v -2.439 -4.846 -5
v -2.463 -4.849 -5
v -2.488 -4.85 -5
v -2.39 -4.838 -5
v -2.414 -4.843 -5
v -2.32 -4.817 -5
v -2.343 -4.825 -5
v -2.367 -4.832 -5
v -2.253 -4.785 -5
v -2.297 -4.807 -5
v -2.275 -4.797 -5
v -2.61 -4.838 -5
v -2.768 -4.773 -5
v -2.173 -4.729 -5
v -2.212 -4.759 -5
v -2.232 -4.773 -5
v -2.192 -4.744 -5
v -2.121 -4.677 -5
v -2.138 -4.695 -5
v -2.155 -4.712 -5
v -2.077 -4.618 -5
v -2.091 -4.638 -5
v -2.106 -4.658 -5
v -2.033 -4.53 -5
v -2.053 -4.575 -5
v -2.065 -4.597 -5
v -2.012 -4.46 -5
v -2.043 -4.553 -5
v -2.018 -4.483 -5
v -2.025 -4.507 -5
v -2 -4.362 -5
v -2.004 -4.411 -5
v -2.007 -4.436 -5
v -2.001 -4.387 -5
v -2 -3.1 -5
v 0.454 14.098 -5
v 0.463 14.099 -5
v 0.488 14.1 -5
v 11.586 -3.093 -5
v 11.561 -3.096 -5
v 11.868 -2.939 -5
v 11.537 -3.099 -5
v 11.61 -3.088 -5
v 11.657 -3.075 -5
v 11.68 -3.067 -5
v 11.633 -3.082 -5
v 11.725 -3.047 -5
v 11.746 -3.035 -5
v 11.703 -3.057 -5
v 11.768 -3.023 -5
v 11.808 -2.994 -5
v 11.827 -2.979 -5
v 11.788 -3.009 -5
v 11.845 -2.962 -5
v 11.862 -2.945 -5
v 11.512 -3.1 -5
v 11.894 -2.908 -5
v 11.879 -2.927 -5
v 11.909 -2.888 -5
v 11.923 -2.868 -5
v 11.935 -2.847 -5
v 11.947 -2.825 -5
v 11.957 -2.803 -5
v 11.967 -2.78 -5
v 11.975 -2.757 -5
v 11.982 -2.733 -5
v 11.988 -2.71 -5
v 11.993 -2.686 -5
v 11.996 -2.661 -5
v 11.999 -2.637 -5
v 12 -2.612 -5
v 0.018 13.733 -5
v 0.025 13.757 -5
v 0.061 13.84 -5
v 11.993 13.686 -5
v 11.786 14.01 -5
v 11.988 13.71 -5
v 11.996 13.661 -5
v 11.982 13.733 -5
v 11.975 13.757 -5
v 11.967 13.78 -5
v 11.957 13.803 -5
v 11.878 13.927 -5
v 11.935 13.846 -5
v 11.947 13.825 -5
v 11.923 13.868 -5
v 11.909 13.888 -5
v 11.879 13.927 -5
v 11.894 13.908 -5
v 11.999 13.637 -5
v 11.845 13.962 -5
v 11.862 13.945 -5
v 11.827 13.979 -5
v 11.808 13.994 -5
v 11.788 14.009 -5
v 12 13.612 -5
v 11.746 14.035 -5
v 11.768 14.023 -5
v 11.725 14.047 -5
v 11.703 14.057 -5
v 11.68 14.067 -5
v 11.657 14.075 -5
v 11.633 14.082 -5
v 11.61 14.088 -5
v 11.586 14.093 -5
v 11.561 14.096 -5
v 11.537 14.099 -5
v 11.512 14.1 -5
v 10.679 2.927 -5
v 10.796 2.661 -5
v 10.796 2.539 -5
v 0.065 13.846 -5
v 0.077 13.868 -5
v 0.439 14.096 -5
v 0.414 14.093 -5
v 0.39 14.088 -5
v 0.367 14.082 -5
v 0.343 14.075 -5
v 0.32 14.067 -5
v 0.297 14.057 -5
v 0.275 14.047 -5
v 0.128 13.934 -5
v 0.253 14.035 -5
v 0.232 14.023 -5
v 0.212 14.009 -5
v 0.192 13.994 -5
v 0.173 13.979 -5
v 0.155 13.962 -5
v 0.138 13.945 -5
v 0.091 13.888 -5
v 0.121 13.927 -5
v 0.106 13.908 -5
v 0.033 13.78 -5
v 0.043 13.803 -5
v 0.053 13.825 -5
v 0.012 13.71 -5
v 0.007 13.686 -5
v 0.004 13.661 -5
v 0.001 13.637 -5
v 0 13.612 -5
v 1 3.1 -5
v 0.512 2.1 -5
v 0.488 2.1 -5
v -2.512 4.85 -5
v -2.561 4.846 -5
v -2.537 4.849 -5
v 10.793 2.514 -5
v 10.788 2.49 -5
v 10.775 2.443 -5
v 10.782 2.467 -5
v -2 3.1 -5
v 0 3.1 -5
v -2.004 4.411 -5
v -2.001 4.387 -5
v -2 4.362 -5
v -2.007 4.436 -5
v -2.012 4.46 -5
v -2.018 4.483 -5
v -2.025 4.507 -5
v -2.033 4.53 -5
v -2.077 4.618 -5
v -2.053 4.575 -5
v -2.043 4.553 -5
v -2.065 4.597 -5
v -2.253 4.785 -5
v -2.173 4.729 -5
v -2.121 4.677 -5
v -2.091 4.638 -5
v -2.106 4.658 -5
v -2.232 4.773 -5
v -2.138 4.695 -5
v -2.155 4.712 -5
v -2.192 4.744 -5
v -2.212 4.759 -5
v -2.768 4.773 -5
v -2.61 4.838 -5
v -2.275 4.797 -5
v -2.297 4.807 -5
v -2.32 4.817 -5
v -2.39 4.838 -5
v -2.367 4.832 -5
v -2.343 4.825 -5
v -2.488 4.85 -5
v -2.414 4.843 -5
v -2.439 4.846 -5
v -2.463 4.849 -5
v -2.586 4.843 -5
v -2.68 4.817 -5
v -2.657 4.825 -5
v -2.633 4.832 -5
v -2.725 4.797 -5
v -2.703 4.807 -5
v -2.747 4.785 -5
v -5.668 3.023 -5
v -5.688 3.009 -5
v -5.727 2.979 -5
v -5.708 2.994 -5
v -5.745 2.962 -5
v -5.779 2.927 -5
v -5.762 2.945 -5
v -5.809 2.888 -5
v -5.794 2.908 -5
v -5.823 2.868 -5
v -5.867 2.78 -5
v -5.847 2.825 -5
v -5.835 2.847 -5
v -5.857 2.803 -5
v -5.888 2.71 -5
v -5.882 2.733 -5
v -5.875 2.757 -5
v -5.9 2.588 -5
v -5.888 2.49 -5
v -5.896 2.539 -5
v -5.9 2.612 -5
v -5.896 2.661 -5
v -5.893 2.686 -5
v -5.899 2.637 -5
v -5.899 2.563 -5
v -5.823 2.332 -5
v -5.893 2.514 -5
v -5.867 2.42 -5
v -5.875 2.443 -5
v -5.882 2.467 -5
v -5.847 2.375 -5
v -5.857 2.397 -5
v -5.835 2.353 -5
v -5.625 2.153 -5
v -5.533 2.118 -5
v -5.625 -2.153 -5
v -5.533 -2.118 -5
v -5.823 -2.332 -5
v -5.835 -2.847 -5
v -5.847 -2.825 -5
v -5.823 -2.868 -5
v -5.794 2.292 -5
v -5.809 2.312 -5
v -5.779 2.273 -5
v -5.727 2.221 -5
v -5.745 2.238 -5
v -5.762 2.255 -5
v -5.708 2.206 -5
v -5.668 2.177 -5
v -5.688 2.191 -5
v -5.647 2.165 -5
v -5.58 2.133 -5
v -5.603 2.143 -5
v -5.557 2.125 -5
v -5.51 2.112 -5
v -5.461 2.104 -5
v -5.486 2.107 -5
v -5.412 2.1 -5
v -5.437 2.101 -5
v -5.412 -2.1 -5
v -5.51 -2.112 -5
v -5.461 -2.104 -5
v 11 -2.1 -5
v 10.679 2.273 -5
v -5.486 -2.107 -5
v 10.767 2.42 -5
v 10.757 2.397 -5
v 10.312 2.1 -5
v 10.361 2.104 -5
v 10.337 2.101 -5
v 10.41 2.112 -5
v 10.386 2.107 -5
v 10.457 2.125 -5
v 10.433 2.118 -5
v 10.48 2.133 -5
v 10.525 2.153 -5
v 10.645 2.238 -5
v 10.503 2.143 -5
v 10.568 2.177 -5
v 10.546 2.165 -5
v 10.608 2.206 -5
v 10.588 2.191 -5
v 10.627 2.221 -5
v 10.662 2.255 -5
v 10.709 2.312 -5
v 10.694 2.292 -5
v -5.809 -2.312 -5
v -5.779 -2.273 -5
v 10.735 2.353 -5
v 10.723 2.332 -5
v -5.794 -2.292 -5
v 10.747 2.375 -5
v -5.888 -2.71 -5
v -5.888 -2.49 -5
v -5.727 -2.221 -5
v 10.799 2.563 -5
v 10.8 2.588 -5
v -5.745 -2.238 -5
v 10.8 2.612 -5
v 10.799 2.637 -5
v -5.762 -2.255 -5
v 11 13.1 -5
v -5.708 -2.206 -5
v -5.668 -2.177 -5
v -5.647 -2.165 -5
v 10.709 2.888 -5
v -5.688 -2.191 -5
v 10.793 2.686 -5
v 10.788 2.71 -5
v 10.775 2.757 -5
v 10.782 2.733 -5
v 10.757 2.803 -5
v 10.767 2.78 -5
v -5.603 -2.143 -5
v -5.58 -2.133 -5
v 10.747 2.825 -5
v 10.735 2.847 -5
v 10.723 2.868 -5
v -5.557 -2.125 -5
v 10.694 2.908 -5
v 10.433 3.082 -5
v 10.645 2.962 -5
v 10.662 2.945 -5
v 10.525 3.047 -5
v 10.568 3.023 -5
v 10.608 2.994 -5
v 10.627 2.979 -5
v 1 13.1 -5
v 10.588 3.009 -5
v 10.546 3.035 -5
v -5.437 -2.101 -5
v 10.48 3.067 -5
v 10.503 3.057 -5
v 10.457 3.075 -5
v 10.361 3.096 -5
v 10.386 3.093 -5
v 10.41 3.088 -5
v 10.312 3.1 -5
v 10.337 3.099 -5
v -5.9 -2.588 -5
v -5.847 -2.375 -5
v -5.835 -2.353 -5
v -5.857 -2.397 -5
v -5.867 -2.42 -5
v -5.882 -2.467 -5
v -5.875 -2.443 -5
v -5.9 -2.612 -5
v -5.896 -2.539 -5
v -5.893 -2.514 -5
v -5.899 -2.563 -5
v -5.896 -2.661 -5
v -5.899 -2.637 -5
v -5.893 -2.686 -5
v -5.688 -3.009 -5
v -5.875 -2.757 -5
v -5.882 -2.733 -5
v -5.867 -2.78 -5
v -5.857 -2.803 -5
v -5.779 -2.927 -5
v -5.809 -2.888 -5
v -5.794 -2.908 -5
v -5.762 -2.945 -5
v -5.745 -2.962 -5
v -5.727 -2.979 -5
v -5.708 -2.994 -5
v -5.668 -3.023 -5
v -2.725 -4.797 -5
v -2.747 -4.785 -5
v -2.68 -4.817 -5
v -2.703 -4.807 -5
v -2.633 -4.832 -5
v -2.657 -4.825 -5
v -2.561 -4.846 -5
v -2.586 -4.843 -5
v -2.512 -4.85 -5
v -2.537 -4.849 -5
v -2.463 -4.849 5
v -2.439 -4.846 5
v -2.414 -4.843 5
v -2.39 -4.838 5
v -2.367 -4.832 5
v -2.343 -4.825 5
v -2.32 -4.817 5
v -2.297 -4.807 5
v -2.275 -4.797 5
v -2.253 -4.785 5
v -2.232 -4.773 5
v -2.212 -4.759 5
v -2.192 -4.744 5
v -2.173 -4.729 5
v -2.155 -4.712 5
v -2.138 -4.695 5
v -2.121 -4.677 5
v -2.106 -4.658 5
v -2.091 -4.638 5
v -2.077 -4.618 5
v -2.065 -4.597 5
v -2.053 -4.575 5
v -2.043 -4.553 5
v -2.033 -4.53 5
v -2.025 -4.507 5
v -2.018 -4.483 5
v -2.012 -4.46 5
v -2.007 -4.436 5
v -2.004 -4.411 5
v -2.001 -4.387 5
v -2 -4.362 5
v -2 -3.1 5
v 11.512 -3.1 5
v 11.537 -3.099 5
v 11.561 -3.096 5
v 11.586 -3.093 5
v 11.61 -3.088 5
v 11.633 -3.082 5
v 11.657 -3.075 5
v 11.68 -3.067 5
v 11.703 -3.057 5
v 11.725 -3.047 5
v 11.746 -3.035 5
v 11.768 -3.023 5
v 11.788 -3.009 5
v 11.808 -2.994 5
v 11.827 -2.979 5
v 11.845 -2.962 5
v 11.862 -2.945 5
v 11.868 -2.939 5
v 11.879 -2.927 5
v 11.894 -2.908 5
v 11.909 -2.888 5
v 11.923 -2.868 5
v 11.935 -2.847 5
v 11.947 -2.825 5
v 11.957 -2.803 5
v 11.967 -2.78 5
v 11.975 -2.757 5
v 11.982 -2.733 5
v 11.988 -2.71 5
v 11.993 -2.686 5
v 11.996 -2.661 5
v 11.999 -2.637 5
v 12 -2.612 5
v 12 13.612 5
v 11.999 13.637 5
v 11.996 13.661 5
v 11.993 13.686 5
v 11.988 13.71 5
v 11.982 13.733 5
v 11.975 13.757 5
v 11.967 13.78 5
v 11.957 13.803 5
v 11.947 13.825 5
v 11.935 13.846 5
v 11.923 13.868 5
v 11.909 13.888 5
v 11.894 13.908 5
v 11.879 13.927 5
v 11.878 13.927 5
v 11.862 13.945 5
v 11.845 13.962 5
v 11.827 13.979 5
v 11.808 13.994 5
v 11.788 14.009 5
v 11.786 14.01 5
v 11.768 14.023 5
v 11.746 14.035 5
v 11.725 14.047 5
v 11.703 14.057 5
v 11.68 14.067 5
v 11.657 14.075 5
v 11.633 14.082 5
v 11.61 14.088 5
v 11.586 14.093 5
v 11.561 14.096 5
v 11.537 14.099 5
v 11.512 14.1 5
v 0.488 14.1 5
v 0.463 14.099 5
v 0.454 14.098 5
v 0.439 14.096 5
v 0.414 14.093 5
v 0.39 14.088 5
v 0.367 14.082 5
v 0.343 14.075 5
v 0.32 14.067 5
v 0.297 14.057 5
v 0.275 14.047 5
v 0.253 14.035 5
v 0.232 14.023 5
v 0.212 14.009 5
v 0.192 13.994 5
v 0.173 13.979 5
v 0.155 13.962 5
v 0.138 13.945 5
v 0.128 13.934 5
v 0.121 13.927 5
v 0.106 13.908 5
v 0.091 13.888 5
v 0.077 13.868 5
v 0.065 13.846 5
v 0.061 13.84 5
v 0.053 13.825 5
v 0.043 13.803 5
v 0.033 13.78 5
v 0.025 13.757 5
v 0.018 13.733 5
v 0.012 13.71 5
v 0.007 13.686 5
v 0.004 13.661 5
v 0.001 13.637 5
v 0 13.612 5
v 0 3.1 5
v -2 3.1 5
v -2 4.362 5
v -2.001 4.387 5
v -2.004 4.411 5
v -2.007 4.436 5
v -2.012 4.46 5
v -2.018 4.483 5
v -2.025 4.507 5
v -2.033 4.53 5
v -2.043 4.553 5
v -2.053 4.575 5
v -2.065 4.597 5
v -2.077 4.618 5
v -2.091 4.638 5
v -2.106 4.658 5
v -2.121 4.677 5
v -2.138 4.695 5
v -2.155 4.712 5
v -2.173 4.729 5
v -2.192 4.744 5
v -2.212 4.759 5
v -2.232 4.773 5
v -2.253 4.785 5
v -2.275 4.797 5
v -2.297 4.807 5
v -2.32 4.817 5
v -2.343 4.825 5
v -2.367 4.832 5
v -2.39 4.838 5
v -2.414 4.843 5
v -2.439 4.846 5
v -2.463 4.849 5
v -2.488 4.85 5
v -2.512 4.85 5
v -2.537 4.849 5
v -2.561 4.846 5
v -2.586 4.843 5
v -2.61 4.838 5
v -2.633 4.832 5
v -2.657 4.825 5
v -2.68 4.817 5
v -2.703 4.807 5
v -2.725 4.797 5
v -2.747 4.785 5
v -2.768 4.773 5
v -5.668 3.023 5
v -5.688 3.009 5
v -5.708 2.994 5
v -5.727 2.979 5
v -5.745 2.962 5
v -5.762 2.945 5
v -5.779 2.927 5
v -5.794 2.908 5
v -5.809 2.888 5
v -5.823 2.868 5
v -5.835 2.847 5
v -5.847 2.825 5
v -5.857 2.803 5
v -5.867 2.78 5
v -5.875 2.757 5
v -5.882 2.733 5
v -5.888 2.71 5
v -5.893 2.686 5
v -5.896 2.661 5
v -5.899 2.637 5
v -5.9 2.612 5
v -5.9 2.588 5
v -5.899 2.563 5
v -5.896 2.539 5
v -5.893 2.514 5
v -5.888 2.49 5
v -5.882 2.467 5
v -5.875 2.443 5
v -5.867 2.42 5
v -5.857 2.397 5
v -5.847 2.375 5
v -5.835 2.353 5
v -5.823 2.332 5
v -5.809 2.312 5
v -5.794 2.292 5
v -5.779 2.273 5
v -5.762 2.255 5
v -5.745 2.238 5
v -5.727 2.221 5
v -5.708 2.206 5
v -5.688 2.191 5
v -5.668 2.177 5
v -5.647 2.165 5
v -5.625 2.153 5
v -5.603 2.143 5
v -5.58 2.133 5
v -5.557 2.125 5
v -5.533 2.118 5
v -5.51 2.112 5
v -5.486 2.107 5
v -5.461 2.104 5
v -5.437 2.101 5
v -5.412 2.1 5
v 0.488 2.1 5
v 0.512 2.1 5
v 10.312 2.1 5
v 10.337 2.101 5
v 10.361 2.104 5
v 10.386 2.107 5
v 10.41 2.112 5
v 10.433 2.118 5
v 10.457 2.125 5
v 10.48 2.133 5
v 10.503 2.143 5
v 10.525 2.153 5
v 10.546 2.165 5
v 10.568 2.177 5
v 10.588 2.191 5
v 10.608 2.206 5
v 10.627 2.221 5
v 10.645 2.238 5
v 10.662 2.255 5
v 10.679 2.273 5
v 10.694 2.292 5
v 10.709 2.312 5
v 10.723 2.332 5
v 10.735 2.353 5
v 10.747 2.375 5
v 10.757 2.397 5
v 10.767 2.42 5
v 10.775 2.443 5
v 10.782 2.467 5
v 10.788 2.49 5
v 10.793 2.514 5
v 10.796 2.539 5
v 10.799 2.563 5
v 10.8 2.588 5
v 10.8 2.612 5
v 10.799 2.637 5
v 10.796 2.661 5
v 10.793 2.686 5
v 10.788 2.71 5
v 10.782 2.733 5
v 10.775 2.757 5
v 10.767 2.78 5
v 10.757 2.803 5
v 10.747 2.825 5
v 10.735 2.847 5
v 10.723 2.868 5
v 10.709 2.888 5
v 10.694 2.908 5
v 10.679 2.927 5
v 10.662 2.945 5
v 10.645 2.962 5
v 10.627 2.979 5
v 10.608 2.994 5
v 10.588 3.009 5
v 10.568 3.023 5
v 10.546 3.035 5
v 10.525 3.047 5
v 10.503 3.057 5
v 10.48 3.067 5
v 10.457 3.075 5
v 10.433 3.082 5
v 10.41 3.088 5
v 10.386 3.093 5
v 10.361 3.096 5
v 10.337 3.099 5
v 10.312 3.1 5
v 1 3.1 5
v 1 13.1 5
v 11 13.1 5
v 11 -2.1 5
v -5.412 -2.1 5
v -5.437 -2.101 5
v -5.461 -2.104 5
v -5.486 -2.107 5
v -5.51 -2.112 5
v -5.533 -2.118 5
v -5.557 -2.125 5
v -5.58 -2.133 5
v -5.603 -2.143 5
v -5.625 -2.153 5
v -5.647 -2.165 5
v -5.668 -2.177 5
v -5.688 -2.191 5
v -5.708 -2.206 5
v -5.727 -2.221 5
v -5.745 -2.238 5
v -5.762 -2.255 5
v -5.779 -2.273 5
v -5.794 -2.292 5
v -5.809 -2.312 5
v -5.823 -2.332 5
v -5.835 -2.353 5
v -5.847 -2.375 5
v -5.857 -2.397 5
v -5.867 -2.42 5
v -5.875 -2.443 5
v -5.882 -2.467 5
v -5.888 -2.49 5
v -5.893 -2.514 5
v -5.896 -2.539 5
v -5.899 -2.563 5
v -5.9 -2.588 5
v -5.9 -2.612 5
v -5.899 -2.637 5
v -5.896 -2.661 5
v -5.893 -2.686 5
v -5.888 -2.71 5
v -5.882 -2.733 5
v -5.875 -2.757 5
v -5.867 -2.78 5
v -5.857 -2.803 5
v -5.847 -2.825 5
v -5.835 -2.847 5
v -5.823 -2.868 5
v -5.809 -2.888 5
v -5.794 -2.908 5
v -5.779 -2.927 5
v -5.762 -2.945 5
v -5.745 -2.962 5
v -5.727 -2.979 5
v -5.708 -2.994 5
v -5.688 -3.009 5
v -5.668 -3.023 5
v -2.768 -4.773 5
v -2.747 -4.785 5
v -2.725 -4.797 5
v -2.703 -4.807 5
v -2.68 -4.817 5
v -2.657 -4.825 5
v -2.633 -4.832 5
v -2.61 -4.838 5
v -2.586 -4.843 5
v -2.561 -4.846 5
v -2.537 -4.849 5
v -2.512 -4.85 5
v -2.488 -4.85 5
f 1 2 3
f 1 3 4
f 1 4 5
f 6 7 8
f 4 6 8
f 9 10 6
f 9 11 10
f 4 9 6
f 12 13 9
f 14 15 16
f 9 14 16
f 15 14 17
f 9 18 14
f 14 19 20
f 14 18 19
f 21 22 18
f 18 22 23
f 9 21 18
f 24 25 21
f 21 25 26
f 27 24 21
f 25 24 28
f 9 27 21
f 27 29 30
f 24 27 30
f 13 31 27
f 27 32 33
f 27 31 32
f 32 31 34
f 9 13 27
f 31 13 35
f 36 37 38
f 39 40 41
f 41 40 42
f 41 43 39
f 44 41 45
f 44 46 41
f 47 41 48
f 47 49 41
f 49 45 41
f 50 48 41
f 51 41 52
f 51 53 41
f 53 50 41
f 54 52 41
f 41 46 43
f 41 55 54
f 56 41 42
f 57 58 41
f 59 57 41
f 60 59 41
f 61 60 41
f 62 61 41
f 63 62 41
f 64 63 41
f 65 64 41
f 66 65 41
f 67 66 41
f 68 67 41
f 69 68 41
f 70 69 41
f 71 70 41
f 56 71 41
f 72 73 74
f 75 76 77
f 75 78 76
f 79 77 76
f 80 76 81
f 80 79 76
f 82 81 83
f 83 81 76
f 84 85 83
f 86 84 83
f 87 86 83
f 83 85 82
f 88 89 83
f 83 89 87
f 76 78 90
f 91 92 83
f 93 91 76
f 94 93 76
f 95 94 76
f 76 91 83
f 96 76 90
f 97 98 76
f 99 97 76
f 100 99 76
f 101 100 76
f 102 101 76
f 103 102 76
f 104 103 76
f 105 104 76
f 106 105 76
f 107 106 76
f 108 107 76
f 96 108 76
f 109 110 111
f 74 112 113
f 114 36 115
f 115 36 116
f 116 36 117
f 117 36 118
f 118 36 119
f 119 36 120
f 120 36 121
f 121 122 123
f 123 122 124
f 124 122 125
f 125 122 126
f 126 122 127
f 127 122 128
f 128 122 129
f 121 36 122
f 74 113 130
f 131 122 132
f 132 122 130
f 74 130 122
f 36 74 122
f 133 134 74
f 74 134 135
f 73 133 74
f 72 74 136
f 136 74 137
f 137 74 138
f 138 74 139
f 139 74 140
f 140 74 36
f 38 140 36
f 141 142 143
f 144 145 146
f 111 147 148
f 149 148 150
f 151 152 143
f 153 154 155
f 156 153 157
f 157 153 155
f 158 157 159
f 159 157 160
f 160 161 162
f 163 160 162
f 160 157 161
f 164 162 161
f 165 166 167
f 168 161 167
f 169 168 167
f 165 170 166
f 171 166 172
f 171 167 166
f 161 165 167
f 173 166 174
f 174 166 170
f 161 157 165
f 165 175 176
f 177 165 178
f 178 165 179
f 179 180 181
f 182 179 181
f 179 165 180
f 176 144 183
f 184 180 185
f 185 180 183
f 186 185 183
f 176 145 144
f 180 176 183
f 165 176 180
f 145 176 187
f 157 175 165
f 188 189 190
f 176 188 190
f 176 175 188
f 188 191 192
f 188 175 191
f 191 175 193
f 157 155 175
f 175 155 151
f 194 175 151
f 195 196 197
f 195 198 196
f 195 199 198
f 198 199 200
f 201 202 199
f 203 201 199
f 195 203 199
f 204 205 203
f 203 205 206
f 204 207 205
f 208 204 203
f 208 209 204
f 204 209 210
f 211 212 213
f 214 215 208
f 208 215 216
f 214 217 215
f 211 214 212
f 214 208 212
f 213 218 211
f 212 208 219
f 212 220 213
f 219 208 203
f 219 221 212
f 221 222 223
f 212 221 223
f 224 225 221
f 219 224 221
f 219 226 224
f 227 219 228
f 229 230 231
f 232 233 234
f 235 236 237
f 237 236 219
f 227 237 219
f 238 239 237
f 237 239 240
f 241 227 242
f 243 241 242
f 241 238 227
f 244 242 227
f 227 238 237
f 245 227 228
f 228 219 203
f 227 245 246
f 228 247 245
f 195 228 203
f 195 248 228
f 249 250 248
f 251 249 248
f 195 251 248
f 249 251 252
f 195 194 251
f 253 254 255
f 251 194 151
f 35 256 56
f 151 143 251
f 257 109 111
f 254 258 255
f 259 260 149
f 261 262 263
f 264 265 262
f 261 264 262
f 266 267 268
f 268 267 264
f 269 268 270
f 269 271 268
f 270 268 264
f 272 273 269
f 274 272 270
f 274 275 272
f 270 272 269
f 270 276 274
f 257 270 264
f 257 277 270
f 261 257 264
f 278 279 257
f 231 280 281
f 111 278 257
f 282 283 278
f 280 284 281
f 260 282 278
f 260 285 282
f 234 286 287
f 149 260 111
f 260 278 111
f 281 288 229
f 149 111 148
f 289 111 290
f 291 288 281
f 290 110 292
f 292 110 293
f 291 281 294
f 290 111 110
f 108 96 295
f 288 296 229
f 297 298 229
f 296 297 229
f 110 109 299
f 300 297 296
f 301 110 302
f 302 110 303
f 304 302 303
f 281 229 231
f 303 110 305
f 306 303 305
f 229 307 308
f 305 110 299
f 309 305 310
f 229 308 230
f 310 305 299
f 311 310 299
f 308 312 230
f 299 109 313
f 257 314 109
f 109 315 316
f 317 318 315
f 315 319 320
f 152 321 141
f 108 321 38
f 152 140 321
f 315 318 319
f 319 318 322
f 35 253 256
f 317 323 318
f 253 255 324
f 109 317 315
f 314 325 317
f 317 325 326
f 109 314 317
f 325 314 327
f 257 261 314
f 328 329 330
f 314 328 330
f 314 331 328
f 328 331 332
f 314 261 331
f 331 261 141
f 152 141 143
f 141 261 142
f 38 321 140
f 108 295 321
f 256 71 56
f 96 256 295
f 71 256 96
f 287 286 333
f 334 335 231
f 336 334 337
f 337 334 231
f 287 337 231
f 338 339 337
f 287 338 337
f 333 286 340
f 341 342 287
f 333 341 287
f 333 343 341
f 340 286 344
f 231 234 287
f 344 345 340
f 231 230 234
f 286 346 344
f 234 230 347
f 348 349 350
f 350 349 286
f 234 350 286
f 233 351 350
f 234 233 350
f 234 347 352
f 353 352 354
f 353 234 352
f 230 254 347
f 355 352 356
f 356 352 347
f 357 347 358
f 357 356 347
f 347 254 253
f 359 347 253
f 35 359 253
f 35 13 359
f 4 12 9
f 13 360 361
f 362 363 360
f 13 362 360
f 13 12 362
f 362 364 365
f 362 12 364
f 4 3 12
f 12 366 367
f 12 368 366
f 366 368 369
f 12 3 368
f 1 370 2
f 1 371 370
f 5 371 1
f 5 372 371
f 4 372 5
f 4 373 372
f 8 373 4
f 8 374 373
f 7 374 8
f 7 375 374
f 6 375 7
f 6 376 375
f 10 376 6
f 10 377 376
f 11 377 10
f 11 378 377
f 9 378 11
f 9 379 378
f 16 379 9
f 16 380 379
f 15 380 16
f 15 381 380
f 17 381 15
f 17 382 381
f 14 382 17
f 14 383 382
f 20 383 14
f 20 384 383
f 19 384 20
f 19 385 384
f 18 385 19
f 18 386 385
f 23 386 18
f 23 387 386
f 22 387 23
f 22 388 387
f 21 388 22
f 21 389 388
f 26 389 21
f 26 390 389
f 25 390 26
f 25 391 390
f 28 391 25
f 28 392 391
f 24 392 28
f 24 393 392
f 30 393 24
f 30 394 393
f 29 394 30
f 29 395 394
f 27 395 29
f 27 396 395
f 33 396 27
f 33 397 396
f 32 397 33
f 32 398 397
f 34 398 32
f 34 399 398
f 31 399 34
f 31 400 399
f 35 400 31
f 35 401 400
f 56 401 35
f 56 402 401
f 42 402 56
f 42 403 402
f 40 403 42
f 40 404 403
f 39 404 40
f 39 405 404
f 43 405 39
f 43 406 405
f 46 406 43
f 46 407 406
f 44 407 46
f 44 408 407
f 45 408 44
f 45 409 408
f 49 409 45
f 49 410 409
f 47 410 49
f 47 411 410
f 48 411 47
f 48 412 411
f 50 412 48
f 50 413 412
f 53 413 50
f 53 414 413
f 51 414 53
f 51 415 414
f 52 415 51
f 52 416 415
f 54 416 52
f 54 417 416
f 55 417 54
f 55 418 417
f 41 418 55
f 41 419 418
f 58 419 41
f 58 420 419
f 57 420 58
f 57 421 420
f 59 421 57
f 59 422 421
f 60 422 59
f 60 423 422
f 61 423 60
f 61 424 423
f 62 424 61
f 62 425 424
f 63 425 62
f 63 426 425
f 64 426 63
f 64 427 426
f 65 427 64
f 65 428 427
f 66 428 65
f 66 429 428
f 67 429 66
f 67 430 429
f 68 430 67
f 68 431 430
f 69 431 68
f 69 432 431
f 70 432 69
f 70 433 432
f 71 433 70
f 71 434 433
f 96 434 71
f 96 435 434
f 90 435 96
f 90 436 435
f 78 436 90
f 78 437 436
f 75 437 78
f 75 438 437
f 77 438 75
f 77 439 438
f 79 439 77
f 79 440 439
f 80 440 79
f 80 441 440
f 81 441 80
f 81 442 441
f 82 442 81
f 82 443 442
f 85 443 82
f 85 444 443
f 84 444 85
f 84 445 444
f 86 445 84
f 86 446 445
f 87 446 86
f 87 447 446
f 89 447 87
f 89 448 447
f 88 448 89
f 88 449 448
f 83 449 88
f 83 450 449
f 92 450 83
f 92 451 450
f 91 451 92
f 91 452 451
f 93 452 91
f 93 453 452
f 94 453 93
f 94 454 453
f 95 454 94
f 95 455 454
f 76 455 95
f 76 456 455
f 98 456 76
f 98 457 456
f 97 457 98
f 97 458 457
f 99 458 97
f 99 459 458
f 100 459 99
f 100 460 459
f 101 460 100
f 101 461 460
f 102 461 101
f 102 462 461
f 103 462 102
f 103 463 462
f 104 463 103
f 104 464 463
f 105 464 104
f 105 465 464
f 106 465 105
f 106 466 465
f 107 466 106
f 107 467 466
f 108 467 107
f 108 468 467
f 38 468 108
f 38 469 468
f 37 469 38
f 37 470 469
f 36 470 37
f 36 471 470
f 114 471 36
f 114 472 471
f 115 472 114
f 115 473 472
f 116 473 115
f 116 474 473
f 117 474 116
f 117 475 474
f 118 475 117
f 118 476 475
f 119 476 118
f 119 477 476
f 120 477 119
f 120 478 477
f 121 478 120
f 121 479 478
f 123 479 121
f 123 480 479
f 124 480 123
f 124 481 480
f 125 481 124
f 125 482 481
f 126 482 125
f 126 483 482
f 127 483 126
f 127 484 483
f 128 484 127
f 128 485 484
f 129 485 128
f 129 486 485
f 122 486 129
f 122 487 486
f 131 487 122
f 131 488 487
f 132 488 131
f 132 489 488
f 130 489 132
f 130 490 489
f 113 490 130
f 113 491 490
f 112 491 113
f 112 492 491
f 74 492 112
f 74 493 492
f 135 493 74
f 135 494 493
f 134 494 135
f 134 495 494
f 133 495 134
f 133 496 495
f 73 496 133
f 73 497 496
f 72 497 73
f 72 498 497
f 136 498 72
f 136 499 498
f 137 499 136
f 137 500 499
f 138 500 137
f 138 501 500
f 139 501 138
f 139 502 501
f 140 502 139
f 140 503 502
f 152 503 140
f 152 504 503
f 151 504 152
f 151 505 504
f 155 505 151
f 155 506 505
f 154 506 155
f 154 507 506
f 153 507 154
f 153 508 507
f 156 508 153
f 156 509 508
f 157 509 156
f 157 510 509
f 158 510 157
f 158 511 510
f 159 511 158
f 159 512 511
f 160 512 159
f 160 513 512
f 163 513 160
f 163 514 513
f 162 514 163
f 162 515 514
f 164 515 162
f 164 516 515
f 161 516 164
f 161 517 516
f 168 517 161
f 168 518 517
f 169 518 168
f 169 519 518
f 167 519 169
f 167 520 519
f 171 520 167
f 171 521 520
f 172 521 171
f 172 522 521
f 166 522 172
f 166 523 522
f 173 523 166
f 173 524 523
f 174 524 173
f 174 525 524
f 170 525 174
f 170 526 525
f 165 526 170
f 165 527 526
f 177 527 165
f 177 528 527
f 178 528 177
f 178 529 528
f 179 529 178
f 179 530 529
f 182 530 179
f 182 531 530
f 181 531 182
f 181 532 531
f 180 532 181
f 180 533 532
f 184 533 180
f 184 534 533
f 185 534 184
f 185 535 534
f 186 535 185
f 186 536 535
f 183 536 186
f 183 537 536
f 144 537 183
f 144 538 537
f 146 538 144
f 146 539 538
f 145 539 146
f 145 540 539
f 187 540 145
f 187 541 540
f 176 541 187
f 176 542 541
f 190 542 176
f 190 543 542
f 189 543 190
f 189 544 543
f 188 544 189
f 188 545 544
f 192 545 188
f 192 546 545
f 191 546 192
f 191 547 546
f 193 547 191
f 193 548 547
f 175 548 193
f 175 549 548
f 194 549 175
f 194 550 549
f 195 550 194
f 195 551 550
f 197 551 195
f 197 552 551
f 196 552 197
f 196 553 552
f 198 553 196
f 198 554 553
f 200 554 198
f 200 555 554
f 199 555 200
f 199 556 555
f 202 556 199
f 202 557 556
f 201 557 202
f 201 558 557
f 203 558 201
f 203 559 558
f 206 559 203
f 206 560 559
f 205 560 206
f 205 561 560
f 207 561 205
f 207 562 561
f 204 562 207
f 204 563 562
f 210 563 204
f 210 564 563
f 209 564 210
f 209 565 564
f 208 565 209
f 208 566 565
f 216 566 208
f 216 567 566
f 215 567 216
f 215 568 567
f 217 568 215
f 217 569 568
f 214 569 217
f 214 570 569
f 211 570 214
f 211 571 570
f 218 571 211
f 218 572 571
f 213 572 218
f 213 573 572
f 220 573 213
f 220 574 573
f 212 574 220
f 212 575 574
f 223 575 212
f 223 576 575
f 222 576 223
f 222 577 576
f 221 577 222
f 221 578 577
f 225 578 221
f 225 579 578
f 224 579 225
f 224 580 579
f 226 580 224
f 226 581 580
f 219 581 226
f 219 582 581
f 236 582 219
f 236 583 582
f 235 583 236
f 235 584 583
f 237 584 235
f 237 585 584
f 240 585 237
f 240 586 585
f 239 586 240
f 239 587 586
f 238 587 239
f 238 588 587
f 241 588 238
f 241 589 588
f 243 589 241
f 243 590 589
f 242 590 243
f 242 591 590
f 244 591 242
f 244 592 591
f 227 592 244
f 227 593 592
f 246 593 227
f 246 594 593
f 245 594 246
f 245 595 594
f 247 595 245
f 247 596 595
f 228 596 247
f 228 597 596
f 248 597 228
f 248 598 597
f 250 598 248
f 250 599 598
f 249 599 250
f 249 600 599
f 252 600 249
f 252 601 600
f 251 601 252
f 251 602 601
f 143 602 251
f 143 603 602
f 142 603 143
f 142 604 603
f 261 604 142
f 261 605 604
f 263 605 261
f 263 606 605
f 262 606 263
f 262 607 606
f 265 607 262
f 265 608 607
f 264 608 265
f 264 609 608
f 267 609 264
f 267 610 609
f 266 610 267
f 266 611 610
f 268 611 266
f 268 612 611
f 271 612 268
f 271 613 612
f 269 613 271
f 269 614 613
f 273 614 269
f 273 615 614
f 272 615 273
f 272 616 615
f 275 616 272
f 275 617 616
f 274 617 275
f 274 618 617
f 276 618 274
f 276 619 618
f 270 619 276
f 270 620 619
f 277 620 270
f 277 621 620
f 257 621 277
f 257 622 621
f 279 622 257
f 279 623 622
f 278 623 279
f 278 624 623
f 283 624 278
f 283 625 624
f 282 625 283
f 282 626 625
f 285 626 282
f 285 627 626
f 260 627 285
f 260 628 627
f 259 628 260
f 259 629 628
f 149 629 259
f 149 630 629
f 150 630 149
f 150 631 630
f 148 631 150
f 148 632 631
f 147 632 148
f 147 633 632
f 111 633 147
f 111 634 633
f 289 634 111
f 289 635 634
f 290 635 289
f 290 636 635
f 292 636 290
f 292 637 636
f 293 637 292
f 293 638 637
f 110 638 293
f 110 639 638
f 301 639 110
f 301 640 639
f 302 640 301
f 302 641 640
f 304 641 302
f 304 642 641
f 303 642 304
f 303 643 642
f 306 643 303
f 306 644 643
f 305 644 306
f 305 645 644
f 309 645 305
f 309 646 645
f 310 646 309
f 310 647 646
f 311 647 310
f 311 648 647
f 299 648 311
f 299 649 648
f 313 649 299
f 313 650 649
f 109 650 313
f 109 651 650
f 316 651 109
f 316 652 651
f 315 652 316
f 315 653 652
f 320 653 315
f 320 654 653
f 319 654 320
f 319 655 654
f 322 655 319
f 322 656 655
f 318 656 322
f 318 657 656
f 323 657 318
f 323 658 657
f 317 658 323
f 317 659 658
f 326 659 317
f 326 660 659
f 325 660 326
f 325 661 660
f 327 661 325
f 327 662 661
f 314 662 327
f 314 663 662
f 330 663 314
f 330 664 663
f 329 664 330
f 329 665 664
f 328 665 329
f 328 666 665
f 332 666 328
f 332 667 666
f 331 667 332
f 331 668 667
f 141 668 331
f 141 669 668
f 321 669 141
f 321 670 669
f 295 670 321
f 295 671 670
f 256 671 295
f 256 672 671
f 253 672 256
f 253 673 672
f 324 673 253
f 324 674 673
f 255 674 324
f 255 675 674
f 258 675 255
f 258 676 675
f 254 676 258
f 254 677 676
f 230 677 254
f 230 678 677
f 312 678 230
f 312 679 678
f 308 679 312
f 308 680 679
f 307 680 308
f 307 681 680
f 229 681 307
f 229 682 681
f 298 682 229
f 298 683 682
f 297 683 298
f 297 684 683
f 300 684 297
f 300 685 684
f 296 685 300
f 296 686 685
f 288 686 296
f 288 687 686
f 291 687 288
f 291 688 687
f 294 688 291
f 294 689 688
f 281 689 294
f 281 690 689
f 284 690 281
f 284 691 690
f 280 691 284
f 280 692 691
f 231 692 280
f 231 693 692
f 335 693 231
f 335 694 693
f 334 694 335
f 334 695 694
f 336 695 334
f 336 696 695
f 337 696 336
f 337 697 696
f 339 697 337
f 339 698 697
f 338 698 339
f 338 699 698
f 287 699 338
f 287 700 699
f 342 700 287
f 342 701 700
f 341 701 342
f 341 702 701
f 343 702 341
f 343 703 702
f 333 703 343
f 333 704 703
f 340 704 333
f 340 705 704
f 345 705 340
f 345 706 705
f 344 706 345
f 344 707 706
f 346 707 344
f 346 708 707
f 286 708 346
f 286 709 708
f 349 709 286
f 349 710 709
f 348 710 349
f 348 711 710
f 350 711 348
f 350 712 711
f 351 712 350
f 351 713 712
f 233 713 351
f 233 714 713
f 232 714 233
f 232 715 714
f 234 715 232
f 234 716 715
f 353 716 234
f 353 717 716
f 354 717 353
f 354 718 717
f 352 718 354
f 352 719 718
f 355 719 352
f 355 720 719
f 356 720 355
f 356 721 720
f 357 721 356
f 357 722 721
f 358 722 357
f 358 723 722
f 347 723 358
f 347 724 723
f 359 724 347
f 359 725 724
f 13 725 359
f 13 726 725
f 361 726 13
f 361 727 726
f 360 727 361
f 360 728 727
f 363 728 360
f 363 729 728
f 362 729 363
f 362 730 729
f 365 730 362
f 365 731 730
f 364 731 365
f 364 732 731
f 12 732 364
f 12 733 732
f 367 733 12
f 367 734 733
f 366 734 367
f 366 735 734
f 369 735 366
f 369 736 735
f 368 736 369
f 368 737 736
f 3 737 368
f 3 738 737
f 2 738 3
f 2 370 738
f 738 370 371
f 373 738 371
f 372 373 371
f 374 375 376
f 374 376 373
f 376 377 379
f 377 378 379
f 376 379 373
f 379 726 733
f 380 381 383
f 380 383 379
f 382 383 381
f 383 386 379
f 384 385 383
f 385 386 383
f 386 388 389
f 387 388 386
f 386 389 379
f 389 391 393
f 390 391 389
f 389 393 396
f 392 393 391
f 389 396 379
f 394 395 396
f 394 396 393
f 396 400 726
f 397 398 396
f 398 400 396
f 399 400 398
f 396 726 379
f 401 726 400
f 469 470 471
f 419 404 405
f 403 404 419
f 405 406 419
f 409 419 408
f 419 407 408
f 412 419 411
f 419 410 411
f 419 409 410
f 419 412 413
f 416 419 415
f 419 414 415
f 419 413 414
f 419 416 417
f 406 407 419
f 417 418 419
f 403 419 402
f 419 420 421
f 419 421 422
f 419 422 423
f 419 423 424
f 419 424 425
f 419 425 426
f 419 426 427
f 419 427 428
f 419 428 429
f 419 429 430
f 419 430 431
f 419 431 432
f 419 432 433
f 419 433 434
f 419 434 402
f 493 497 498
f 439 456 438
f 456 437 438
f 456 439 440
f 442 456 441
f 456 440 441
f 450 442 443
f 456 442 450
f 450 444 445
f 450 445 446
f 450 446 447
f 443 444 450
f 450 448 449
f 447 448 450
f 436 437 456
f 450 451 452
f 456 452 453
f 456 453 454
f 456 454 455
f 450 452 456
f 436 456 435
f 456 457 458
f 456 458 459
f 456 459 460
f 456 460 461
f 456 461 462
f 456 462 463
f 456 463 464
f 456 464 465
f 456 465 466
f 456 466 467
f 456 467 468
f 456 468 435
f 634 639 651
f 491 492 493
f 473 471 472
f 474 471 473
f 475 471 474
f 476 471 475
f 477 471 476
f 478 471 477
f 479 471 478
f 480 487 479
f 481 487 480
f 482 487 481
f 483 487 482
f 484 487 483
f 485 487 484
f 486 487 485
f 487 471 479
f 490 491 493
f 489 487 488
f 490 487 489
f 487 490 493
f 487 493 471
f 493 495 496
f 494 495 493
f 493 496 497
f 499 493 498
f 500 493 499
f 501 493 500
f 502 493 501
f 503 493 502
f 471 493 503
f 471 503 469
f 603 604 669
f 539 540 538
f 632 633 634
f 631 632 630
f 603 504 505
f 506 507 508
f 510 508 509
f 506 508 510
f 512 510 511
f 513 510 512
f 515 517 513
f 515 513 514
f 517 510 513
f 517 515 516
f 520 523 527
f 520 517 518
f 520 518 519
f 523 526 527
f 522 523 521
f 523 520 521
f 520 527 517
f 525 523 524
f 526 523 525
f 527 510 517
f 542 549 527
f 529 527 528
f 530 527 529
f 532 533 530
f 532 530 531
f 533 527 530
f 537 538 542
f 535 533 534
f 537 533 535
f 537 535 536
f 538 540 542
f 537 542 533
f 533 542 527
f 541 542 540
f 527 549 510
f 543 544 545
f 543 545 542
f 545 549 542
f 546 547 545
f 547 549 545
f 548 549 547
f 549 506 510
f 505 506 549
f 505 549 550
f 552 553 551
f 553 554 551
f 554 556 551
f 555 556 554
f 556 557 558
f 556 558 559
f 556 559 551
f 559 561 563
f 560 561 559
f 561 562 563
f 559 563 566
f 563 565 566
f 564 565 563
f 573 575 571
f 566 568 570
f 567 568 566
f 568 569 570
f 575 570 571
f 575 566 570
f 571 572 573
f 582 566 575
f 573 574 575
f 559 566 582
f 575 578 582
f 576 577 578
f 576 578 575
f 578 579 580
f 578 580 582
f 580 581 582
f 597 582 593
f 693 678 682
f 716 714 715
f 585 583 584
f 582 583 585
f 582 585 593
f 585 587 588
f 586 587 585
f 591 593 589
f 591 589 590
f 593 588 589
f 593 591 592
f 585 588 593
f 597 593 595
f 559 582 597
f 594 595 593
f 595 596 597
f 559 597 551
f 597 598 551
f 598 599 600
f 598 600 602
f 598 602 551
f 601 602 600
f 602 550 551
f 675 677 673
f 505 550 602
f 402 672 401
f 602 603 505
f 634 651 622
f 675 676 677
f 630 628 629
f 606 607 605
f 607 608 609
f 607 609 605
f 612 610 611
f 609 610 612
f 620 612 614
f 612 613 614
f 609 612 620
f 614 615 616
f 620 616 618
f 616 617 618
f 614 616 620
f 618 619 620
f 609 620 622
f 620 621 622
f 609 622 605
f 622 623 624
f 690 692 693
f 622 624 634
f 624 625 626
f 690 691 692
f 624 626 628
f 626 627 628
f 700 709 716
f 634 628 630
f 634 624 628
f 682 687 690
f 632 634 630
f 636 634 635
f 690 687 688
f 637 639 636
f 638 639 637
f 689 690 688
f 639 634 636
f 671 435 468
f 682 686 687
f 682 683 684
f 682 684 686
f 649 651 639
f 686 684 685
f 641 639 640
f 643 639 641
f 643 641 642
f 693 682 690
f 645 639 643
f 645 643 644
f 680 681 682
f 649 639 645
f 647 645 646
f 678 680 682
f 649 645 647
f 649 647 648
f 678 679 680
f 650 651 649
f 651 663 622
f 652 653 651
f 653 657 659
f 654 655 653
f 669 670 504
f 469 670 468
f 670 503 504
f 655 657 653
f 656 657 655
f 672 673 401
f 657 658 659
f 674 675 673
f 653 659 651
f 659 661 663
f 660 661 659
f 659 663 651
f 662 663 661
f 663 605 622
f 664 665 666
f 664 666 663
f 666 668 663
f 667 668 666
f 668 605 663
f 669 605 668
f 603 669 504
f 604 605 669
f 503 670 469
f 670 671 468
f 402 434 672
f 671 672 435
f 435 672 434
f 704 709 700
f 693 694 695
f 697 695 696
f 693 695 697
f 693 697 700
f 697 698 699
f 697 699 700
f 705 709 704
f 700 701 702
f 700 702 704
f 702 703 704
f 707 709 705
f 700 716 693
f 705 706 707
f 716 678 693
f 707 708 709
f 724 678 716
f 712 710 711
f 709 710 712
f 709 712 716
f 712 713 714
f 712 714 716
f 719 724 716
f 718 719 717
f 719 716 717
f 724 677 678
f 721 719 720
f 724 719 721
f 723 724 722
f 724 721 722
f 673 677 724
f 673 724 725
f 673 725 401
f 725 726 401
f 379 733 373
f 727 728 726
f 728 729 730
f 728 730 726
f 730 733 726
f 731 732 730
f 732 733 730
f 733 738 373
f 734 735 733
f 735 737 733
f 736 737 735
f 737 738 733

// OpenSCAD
// file: ../extrusion-clip.scad
include <lumpyscad/lib.scad>;

resolution = 128;
extrusion_width = 0.5;
wall_thickness = 1;
tolerance = 0.2;

module extrusion_clip_profile_arrow(opening_height = 4,opening_width = 8) {
  overall_height = opening_height+wall_thickness*2;
  overall_width = v_slot_opening+opening_width + wall_thickness;
  prong_length = v_slot_cavity_depth-tolerance*2;
  //length_behind_extrusion = (v_slot_opening_behind_slot_width-v_slot_opening)/2-tolerance;
  length_behind_extrusion = 1.75;
  echo("length_behind_extrusion: ", length_behind_extrusion);
  module body() {
    for(y=[front,rear]) {
      mirror([0,y-1,0]) {
        // angled retainer
        hull() {
          translate([0,v_slot_opening/2-wall_thickness/2,0]) {
            translate([-v_slot_cavity_depth+wall_thickness/2+tolerance,0,0]) {
              accurate_circle(wall_thickness,resolution);
            }
            translate([-v_slot_depth-wall_thickness/2-tolerance,0,0]) {
              accurate_circle(wall_thickness,resolution);
            }
          }
          translate([-v_slot_depth-wall_thickness/2-tolerance,v_slot_opening/2+length_behind_extrusion-wall_thickness/2,0]) {
            accurate_circle(wall_thickness,resolution);
          }
        }

        // retainer arms
        translate([-v_slot_depth,v_slot_opening/2-wall_thickness/2,0]) {
          square([v_slot_depth*2+0.1,wall_thickness],center=true);
        }
      }
    }

    // end cap

    // longer/outer arm & co
    translate([-wall_thickness+overall_height/2,-v_slot_opening/2+wall_thickness/2,0]) {
      rounded_square(overall_height+wall_thickness*2,wall_thickness,wall_thickness,resolution);
    }
    translate([overall_height-wall_thickness/2,-v_slot_opening/2+overall_width/2,0]) {
      rounded_square(wall_thickness,overall_width,wall_thickness,resolution);
    }

    // shorter/inner arm & co
    short_arm_length = opening_height+wall_thickness-tolerance;
    translate([-wall_thickness+short_arm_length/2,v_slot_opening/2-wall_thickness/2,0]) {
      rounded_square(short_arm_length+wall_thickness*2,wall_thickness,wall_thickness,resolution);
    }
    translate([wall_thickness/2,v_slot_opening/2+opening_width/2,0]) {
      rounded_square(wall_thickness,opening_width+wall_thickness*2,wall_thickness,resolution);
    }

    // end cap
    translate([overall_height/2,-v_slot_opening/2+overall_width-wall_thickness/2,0]) {
      rounded_square(overall_height,wall_thickness,wall_thickness,resolution);
    }
    /*
    translate([short_arm_length-wall_thickness/2,v_slot_opening/2+tolerance/2,0]) {
      rounded_square(wall_thickness,wall_thickness*2+tolerance,wall_thickness,resolution);
    }
    translate([short_arm_length/2,v_slot_opening/2+wall_thickness/2+tolerance,0]) {
      rounded_square(short_arm_length,wall_thickness,wall_thickness,resolution);
    }
    */

    hull() {
     
      
    }
  }

  module holes() {
    
  }
  
  difference() {
    body();
    holes();
  }
}

module extrusion_clip_profile_minimal(opening_height = 4,opening_width = 8) {
  overall_height = opening_height+wall_thickness*2;
  overall_width = v_slot_opening+opening_width + wall_thickness;
  prong_length = v_slot_cavity_depth-tolerance*2;
  //length_behind_extrusion = (v_slot_opening_behind_slot_width-v_slot_opening)/2-tolerance;
  length_behind_extrusion = 1.25;
  room_for_extrusion_sharp = 0;

  module body() {
    for(x=[left,right]) {
      mirror([x-1,0,0]) {
        translate([-v_slot_opening/2-length_behind_extrusion/2+wall_thickness/2,-v_slot_depth-wall_thickness/2,0]) {
          rounded_square(length_behind_extrusion+wall_thickness,wall_thickness,wall_thickness,resolution);
        }
        translate([-v_slot_opening/2+wall_thickness/2,-v_slot_depth+room_for_extrusion_sharp/2,0]) {
          rounded_square(wall_thickness,wall_thickness*2+room_for_extrusion_sharp,wall_thickness,resolution);
        }
        hull() {
          translate([-v_slot_opening/2+wall_thickness/2,-v_slot_depth+room_for_extrusion_sharp+wall_thickness/2,0]) {
            accurate_circle(wall_thickness,resolution);
          }
          translate([-v_slot_width/2+wall_thickness/2,wall_thickness/2,0]) {
            accurate_circle(wall_thickness,resolution);
          }
        }
      }
    }
  }

  module holes() {
    
  }
  
  difference() {
    body();
    holes();
  }
}

module extrusion_clip_wiring_holder(opening_height = 4,opening_width = 8) {
  overall_height = opening_height+wall_thickness*2;
  overall_width = v_slot_width+opening_width + wall_thickness;

  module body() {
    extrusion_clip_profile_minimal();

    /*
    translate([0,wall_thickness/2,0]) {
      difference() {
        accurate_circle(v_slot_width,resolution);
        accurate_circle(v_slot_width-wall_thickness*2,resolution);
        translate([0,-v_slot_width/2,0]) {
          square([v_slot_width*2,v_slot_width],center=true);
        }
      }
    }
    */

    guard_height = overall_height-wall_thickness-tolerance;
    translate([-v_slot_width/2+wall_thickness/2,guard_height/2,0]) {
      rounded_square(wall_thickness,guard_height,wall_thickness,resolution);
    }
    translate([-v_slot_width/2-opening_width/2,wall_thickness/2,0]) {
      rounded_square(opening_width+wall_thickness*2,wall_thickness,wall_thickness,resolution);
    }

    translate([v_slot_width/2-wall_thickness/2,overall_height/2,0]) {
      rounded_square(wall_thickness,overall_height,wall_thickness,resolution);
    }
    translate([v_slot_width/2-overall_width/2,overall_height-wall_thickness/2,0]) {
      rounded_square(overall_width,wall_thickness,wall_thickness,resolution);
    }

    translate([v_slot_width/2-overall_width+wall_thickness/2,overall_height/2,0]) {
      rounded_square(wall_thickness,overall_height,wall_thickness,resolution);
    }
  }

  module holes() {
  }

  difference() {
    body();
    holes();
  }
}

module extrusion_wiring_retainer() {
  module body() {
    extrusion_clip_profile_minimal();

    translate([0,wall_thickness/2,0]) {
      difference() {
        accurate_circle(v_slot_width,resolution);
        accurate_circle(v_slot_width-wall_thickness*2,resolution);
        translate([0,-v_slot_width/2,0]) {
          square([v_slot_width*2,v_slot_width],center=true);
        }
      }
    }
  }

  module holes() {
  }

  difference() {
    body();
    holes();
  }
}

% translate([0,-20/2,0]) {
  extrusion_2020_profile();
}

linear_extrude(height=0.1) {
  //extrusion_clip_profile_minimal();
  extrusion_clip_wiring_holder();
}

translate([-20/2,-20/2,0]) {
  rotate([0,0,90]) {
    linear_extrude(height=0.1) {
      extrusion_wiring_retainer();
    }
  }
}

translate([20/2,-20/2,0]) {
  color("grey", 0.1) {
    linear_extrude(height=0.1) {
      extrusion_clip_profile_arrow();
    }
  }
}
// main file
use <../extrusion-clip.scad>;

linear_extrude(height=10,center=true,convexity=3) {
  extrusion_clip_profile_arrow(10,10);
}
